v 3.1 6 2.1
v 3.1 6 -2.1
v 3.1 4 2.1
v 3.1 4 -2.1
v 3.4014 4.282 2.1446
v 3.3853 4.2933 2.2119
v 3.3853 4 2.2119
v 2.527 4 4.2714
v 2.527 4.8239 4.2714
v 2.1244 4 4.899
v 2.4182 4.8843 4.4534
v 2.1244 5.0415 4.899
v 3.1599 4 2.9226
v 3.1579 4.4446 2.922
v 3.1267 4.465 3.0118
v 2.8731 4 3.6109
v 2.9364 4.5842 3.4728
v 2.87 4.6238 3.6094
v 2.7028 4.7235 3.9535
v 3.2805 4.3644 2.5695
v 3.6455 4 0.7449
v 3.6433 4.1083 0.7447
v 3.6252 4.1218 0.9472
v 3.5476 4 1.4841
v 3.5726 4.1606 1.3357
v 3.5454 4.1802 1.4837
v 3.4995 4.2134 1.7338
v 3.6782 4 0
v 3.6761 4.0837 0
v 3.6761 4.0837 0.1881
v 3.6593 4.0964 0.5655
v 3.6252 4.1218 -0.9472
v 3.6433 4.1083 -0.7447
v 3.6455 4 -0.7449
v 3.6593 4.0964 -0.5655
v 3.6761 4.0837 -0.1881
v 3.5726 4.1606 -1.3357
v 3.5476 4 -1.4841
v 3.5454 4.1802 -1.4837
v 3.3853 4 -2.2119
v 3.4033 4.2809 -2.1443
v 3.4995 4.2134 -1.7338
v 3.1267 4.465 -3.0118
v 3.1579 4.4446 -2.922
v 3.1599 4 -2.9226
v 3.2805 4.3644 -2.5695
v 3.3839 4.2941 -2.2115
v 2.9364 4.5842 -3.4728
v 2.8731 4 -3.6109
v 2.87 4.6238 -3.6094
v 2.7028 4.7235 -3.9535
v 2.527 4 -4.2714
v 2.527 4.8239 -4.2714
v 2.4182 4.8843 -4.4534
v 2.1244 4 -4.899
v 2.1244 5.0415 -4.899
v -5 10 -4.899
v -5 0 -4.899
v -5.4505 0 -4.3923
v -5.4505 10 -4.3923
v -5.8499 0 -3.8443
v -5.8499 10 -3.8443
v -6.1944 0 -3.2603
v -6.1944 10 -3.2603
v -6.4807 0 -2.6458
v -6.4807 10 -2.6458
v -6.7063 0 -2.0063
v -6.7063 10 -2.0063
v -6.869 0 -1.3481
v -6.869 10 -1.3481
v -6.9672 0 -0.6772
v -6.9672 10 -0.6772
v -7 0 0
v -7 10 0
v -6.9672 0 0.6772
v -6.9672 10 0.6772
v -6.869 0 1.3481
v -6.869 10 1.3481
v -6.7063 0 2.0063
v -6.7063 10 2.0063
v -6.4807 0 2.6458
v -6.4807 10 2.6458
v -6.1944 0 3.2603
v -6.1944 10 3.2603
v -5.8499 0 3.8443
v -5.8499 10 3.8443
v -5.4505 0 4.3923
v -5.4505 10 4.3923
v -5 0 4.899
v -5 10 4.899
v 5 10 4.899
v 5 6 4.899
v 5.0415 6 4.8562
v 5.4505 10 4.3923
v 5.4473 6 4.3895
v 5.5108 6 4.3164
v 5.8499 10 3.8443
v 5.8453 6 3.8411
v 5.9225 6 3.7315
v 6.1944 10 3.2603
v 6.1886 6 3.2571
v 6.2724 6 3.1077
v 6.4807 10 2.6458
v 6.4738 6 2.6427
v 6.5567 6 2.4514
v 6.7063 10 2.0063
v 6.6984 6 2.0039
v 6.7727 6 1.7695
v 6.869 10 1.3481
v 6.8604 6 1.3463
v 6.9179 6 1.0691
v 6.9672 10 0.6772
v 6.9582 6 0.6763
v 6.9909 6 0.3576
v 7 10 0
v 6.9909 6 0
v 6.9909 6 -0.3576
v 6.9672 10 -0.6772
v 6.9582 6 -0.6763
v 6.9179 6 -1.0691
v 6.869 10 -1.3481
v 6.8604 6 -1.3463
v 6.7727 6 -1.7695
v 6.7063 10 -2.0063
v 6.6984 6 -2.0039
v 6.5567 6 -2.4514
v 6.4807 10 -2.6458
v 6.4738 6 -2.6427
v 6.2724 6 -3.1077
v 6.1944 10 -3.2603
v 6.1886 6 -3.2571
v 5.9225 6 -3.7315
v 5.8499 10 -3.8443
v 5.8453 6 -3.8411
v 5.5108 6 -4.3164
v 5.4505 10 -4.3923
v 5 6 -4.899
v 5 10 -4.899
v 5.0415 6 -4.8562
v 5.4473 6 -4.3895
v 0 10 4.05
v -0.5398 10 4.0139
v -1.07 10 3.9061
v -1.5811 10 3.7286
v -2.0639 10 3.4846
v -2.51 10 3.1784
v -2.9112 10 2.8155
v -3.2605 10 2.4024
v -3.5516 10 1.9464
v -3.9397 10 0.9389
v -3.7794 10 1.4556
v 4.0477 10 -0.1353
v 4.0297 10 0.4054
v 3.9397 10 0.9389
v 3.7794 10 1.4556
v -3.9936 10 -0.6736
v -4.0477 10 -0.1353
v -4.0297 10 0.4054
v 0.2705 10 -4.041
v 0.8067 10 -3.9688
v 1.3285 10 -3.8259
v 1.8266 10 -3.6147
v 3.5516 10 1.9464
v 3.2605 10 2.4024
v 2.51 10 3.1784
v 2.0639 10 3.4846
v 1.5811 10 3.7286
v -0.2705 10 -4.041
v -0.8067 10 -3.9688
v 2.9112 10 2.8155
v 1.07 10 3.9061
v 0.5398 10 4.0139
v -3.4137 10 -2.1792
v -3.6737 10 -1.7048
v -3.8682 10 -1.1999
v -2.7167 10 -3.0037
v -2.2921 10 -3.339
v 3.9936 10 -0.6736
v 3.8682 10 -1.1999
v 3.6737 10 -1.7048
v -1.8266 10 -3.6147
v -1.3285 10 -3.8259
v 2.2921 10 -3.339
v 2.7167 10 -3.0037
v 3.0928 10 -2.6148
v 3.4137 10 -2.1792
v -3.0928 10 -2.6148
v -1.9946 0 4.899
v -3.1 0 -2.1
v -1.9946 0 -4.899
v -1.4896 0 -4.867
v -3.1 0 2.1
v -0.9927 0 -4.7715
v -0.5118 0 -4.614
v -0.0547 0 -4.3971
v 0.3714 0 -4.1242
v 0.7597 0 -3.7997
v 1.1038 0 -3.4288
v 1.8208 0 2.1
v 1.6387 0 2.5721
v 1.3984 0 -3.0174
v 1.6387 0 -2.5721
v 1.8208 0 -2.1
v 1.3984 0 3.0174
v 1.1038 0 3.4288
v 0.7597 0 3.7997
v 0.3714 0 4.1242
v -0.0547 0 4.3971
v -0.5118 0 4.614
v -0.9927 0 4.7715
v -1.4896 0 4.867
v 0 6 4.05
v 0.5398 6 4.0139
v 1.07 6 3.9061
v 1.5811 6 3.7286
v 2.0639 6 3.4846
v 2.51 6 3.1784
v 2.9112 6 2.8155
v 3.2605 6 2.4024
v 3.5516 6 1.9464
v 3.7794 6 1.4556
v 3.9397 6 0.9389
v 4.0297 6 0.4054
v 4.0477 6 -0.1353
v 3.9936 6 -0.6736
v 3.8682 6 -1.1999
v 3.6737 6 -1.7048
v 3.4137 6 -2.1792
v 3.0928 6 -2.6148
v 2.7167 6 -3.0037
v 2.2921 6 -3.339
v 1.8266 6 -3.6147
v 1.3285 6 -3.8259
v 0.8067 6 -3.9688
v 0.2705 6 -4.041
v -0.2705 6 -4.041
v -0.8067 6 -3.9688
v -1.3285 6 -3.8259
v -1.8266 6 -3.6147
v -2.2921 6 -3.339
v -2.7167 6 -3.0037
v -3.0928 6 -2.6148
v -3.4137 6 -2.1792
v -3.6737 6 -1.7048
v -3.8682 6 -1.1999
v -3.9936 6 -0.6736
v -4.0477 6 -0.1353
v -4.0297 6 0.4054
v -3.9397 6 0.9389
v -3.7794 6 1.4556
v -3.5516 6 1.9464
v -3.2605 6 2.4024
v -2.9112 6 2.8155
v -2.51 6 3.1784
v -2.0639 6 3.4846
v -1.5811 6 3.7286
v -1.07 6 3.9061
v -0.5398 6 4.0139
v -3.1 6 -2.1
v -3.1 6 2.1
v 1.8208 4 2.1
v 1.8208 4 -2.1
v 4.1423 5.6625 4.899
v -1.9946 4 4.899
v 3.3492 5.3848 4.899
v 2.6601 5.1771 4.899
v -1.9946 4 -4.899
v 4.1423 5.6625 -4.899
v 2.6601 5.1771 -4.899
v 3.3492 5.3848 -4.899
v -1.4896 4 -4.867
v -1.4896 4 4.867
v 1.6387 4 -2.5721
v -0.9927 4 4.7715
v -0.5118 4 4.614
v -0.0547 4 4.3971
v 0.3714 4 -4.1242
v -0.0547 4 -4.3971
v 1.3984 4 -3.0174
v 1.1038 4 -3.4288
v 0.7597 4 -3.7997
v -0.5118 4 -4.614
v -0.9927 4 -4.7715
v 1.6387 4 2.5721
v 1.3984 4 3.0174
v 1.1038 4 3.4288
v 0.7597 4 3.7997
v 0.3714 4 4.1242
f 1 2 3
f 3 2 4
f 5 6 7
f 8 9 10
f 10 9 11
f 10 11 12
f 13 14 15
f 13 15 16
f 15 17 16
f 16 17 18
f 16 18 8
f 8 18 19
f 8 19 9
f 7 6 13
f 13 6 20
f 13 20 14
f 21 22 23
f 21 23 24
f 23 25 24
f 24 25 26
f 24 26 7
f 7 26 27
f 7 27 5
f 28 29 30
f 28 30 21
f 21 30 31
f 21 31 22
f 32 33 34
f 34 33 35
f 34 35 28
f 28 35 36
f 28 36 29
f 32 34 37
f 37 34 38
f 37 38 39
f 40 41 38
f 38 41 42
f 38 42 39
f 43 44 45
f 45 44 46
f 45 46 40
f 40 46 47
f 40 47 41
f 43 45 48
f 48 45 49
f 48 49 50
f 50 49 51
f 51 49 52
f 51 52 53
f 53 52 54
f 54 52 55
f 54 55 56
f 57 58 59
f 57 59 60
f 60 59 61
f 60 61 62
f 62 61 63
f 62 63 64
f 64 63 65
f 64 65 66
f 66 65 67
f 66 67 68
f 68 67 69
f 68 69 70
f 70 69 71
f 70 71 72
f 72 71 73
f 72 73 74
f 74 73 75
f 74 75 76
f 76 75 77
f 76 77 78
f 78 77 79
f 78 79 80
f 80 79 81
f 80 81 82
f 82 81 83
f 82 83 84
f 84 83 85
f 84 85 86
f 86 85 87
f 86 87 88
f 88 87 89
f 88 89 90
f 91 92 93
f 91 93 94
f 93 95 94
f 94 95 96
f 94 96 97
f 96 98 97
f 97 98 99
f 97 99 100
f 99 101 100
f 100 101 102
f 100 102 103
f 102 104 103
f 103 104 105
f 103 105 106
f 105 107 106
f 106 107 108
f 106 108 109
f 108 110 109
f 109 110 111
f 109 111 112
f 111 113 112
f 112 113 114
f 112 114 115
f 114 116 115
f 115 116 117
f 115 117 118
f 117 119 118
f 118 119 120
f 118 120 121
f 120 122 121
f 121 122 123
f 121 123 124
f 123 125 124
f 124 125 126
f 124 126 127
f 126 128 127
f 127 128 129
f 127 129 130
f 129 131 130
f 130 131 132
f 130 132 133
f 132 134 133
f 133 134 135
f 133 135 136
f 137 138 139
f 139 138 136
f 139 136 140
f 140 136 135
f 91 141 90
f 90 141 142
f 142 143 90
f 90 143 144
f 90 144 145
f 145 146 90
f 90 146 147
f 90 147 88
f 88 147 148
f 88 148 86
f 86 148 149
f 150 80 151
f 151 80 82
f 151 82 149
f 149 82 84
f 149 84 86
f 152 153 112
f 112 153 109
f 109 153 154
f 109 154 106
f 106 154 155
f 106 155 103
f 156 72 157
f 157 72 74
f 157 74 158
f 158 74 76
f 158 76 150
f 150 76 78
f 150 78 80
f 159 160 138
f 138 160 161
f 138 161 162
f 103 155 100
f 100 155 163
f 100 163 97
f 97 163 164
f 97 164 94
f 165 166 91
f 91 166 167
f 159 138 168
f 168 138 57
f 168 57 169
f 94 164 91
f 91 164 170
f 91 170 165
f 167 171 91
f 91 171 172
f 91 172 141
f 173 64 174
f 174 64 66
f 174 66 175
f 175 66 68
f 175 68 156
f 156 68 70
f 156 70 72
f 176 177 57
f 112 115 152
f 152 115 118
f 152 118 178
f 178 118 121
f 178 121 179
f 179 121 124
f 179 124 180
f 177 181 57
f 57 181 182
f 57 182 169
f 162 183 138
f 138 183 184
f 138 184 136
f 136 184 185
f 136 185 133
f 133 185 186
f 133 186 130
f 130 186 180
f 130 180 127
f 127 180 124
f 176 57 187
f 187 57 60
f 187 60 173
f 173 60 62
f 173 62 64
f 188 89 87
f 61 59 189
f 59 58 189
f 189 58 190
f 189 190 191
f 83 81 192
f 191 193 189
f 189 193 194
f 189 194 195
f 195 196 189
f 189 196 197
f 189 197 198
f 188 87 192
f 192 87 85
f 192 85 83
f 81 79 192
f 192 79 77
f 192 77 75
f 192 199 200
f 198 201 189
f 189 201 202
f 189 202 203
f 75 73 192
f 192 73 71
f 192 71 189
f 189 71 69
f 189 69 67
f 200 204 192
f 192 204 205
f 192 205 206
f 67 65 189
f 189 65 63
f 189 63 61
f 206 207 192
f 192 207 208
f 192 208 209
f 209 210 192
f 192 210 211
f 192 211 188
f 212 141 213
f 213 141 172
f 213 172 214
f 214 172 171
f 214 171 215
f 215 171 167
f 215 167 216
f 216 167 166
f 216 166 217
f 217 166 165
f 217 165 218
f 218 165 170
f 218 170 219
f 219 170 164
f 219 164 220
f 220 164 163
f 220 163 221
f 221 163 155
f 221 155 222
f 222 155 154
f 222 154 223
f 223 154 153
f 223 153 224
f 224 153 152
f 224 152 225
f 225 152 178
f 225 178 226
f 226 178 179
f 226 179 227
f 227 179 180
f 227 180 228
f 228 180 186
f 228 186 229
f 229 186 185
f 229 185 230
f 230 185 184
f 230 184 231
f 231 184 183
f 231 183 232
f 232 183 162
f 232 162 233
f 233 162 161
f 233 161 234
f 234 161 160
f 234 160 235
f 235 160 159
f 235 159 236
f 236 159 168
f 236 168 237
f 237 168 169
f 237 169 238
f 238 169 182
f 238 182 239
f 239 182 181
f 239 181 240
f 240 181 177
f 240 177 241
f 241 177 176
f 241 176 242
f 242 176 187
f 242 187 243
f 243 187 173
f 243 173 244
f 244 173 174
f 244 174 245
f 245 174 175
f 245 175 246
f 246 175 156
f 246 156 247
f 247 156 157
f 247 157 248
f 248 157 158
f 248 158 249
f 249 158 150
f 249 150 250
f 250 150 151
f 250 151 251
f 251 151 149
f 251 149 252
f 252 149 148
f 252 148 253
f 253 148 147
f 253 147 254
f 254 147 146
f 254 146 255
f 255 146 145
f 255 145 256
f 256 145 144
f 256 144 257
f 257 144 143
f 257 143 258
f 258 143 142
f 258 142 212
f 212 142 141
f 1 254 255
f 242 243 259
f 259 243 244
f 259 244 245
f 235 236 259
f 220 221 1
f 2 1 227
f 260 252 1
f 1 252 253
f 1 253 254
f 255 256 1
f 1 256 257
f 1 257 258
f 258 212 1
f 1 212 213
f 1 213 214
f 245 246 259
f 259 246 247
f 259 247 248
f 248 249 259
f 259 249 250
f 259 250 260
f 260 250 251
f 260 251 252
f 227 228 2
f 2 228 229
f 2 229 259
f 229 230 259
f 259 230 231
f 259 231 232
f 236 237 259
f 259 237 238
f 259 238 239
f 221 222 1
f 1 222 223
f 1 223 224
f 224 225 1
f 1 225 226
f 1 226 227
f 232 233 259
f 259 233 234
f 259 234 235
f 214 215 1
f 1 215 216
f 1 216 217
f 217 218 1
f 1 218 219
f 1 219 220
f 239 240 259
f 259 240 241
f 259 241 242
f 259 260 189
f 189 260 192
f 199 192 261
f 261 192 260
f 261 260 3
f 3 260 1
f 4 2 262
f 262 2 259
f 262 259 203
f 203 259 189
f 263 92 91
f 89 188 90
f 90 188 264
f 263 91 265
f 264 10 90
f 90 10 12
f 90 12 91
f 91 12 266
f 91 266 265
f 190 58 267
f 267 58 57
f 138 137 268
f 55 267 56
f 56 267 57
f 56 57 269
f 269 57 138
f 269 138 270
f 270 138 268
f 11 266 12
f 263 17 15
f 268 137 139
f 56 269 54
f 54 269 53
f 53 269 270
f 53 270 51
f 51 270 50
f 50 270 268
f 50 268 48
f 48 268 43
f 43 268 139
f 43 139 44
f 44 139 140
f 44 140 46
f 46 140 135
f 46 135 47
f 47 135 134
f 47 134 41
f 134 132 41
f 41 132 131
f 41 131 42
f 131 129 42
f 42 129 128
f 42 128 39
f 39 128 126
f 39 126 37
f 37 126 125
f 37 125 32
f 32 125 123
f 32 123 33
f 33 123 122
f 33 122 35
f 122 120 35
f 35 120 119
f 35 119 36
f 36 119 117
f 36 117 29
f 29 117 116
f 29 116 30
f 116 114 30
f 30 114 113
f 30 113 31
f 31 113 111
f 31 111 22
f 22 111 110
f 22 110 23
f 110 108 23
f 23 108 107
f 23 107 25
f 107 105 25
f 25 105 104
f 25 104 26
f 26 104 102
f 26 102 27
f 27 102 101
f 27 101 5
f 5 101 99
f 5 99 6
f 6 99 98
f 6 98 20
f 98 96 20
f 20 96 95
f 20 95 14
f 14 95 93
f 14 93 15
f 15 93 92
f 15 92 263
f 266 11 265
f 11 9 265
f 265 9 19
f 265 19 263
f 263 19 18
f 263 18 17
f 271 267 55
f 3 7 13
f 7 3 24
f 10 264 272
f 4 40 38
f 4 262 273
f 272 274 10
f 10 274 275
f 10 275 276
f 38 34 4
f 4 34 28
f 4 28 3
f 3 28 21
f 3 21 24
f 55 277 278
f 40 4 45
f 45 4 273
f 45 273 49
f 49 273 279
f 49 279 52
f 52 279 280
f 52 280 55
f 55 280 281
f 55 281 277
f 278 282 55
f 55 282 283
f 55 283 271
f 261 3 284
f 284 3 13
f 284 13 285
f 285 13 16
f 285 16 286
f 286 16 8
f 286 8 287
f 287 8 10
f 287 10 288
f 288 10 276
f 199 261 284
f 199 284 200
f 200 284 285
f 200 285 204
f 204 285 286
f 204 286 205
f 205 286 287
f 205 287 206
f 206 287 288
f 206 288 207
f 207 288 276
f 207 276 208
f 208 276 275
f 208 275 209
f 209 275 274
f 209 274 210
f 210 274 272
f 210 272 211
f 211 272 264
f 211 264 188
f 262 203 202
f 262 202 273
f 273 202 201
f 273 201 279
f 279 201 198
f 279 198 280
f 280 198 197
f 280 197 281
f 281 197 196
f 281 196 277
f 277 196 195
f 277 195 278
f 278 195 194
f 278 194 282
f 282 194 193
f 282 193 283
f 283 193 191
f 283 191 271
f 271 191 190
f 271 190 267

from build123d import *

# Parameters (mm, degrees)
SKETCH1_R           = 7
BOSS_EXTRUDE3_DEPTH = 10
SKETCH4_R           = 4.05
CUT_EXTRUDE1_DEPTH  = 4
SKETCH5_W           = 6.2
SKETCH5_H           = 4.2
CUT_EXTRUDE2_DEPTH  = 6
CUT_EXTRUDE3_DEPTH  = 4
CUT_EXTRUDE4_DEPTH  = 15.071247279
CHAMFER1_SIZE       = 2
CHAMFER1_SIZE_2     = 3.464101615
CUT_EXTRUDE5_DEPTH  = 4
FILLET1_R           = 4


with BuildPart() as part:
    # Sketch1 → Boss-Extrude3 (new body)
    with BuildSketch(Plane(origin=(0, 0, 0), x_dir=(1, 0, 0), z_dir=(0, 1, 0))):
        with Locations(Location((0, 0, 0), (0, 0, 270))):
            Circle(SKETCH1_R)
    extrude(amount=BOSS_EXTRUDE3_DEPTH)

    # Sketch4 → Cut-Extrude1 (cut)
    with BuildSketch(Plane(origin=(0, 10, 0), x_dir=(1, 0, 0), z_dir=(0, 1, 0))):
        with Locations(Location((0, 0, 0), (0, 0, 270))):
            Circle(SKETCH4_R)
    extrude(amount=-CUT_EXTRUDE1_DEPTH, mode=Mode.SUBTRACT)

    # Sketch5 → Cut-Extrude2 (cut)
    with BuildSketch(Plane.XZ):
        Rectangle(SKETCH5_W, SKETCH5_H)
    extrude(amount=-CUT_EXTRUDE2_DEPTH, mode=Mode.SUBTRACT)

    # Sketch6 → Cut-Extrude3 (cut)
    with BuildSketch(Plane.XZ):
        with BuildLine():
            ThreePointArc((0, -7), (7, 0), (0, 7))
            ThreePointArc((0, 7), (3.67817462, 0), (0, -7))
        make_face()
    extrude(amount=-CUT_EXTRUDE3_DEPTH, mode=Mode.SUBTRACT)

    # Sketch7 → Cut-Extrude4 (cut, through all)
    with BuildSketch(Plane(origin=(0, 10, 0), x_dir=(1, 0, 0), z_dir=(0, 1, 0))):
        with BuildLine():
            Line((-5, -4.898979486), (5, -4.898979486))
            ThreePointArc((5, -4.898979486), (0, -7), (-5, -4.898979486))
        make_face()
        with BuildLine():
            Line((5, 4.898979486), (-5, 4.898979486))
            ThreePointArc((-5, 4.898979486), (0, 16.797958971), (5, 4.898979486))
        make_face()
    extrude(amount=-CUT_EXTRUDE4_DEPTH, mode=Mode.SUBTRACT)

    # Chamfer1
    # the kernel refuses this chamfer: 3.464101615, 2 mm, written as the material it takes off along each edge
    with BuildSketch(Plane(origin=(0, 4, 0), x_dir=(-0.4663618278566538, 0, -0.8845940569087047), z_dir=(-0.8845940569087047, 0, 0.4663618278566538))) as chamfer1_piece_1_section:
        Polygon((7, -CHAMFER1_SIZE), (7 - CHAMFER1_SIZE_2, 0), (7, 0), align=None)
    chamfer1_piece_1 = revolve(axis=Axis((0, 4, 0), (0, -1, 0)), revolution_arc=235.596785732, mode=Mode.PRIVATE)
    chamfer1_piece_1 = chamfer1_piece_1 - Plane(origin=(-4.82182538, 5.041782237, 0), x_dir=(0.5672735741760563, 0, 0.8235294117647058), z_dir=(0, -1, 0)) * Cylinder(8.5, 29, mode=Mode.PRIVATE)
    add(chamfer1_piece_1, mode=Mode.SUBTRACT)

    # Sketch10 → Cut-Extrude5 (cut)
    with BuildSketch(Plane.XZ):
        with BuildLine():
            Line((1.820847698, -4.898979486), (1.820847698, 4.898979486))
            Line((1.820847698, 4.898979486), (2.124396614, 4.898979486))
            ThreePointArc((2.124396614, 4.898979486), (3.67817462, 0), (2.124396614, -4.898979486))
            Line((2.124396614, -4.898979486), (1.820847698, -4.898979486))
        make_face()
    extrude(amount=-CUT_EXTRUDE5_DEPTH, mode=Mode.SUBTRACT)

    # Fillet1
    # the kernel refuses this fillet: 4 mm, written as the material it takes off along each edge
    with BuildSketch(Plane(origin=(1.820847698, -9.538589297, 4.898979486), x_dir=(-1, 0, 0), z_dir=(0, 1, 0))) as fillet1_piece_1:
        with BuildLine():
            CenterArc((3.815435719, -4), FILLET1_R, 90, 72.527072621)
            Line((0, -2.798979486), (0, 0))
            Line((0, 0), (3.815435719, 0))
        make_face()
    extrude(amount=13.538589297, mode=Mode.SUBTRACT)
    with BuildSketch(Plane(origin=(1.820847698, -9.538589297, -4.898979486), x_dir=(-1, 0, 0), z_dir=(0, 1, 0))) as fillet1_piece_2:
        with BuildLine():
            CenterArc((3.815435719, 4), FILLET1_R, 197.472927379, 72.527072621)
            Line((0, 2.798979486), (0, 0))
            Line((0, 0), (3.815435719, 0))
        make_face()
    extrude(amount=13.538589297, mode=Mode.SUBTRACT)


solid = part.part
